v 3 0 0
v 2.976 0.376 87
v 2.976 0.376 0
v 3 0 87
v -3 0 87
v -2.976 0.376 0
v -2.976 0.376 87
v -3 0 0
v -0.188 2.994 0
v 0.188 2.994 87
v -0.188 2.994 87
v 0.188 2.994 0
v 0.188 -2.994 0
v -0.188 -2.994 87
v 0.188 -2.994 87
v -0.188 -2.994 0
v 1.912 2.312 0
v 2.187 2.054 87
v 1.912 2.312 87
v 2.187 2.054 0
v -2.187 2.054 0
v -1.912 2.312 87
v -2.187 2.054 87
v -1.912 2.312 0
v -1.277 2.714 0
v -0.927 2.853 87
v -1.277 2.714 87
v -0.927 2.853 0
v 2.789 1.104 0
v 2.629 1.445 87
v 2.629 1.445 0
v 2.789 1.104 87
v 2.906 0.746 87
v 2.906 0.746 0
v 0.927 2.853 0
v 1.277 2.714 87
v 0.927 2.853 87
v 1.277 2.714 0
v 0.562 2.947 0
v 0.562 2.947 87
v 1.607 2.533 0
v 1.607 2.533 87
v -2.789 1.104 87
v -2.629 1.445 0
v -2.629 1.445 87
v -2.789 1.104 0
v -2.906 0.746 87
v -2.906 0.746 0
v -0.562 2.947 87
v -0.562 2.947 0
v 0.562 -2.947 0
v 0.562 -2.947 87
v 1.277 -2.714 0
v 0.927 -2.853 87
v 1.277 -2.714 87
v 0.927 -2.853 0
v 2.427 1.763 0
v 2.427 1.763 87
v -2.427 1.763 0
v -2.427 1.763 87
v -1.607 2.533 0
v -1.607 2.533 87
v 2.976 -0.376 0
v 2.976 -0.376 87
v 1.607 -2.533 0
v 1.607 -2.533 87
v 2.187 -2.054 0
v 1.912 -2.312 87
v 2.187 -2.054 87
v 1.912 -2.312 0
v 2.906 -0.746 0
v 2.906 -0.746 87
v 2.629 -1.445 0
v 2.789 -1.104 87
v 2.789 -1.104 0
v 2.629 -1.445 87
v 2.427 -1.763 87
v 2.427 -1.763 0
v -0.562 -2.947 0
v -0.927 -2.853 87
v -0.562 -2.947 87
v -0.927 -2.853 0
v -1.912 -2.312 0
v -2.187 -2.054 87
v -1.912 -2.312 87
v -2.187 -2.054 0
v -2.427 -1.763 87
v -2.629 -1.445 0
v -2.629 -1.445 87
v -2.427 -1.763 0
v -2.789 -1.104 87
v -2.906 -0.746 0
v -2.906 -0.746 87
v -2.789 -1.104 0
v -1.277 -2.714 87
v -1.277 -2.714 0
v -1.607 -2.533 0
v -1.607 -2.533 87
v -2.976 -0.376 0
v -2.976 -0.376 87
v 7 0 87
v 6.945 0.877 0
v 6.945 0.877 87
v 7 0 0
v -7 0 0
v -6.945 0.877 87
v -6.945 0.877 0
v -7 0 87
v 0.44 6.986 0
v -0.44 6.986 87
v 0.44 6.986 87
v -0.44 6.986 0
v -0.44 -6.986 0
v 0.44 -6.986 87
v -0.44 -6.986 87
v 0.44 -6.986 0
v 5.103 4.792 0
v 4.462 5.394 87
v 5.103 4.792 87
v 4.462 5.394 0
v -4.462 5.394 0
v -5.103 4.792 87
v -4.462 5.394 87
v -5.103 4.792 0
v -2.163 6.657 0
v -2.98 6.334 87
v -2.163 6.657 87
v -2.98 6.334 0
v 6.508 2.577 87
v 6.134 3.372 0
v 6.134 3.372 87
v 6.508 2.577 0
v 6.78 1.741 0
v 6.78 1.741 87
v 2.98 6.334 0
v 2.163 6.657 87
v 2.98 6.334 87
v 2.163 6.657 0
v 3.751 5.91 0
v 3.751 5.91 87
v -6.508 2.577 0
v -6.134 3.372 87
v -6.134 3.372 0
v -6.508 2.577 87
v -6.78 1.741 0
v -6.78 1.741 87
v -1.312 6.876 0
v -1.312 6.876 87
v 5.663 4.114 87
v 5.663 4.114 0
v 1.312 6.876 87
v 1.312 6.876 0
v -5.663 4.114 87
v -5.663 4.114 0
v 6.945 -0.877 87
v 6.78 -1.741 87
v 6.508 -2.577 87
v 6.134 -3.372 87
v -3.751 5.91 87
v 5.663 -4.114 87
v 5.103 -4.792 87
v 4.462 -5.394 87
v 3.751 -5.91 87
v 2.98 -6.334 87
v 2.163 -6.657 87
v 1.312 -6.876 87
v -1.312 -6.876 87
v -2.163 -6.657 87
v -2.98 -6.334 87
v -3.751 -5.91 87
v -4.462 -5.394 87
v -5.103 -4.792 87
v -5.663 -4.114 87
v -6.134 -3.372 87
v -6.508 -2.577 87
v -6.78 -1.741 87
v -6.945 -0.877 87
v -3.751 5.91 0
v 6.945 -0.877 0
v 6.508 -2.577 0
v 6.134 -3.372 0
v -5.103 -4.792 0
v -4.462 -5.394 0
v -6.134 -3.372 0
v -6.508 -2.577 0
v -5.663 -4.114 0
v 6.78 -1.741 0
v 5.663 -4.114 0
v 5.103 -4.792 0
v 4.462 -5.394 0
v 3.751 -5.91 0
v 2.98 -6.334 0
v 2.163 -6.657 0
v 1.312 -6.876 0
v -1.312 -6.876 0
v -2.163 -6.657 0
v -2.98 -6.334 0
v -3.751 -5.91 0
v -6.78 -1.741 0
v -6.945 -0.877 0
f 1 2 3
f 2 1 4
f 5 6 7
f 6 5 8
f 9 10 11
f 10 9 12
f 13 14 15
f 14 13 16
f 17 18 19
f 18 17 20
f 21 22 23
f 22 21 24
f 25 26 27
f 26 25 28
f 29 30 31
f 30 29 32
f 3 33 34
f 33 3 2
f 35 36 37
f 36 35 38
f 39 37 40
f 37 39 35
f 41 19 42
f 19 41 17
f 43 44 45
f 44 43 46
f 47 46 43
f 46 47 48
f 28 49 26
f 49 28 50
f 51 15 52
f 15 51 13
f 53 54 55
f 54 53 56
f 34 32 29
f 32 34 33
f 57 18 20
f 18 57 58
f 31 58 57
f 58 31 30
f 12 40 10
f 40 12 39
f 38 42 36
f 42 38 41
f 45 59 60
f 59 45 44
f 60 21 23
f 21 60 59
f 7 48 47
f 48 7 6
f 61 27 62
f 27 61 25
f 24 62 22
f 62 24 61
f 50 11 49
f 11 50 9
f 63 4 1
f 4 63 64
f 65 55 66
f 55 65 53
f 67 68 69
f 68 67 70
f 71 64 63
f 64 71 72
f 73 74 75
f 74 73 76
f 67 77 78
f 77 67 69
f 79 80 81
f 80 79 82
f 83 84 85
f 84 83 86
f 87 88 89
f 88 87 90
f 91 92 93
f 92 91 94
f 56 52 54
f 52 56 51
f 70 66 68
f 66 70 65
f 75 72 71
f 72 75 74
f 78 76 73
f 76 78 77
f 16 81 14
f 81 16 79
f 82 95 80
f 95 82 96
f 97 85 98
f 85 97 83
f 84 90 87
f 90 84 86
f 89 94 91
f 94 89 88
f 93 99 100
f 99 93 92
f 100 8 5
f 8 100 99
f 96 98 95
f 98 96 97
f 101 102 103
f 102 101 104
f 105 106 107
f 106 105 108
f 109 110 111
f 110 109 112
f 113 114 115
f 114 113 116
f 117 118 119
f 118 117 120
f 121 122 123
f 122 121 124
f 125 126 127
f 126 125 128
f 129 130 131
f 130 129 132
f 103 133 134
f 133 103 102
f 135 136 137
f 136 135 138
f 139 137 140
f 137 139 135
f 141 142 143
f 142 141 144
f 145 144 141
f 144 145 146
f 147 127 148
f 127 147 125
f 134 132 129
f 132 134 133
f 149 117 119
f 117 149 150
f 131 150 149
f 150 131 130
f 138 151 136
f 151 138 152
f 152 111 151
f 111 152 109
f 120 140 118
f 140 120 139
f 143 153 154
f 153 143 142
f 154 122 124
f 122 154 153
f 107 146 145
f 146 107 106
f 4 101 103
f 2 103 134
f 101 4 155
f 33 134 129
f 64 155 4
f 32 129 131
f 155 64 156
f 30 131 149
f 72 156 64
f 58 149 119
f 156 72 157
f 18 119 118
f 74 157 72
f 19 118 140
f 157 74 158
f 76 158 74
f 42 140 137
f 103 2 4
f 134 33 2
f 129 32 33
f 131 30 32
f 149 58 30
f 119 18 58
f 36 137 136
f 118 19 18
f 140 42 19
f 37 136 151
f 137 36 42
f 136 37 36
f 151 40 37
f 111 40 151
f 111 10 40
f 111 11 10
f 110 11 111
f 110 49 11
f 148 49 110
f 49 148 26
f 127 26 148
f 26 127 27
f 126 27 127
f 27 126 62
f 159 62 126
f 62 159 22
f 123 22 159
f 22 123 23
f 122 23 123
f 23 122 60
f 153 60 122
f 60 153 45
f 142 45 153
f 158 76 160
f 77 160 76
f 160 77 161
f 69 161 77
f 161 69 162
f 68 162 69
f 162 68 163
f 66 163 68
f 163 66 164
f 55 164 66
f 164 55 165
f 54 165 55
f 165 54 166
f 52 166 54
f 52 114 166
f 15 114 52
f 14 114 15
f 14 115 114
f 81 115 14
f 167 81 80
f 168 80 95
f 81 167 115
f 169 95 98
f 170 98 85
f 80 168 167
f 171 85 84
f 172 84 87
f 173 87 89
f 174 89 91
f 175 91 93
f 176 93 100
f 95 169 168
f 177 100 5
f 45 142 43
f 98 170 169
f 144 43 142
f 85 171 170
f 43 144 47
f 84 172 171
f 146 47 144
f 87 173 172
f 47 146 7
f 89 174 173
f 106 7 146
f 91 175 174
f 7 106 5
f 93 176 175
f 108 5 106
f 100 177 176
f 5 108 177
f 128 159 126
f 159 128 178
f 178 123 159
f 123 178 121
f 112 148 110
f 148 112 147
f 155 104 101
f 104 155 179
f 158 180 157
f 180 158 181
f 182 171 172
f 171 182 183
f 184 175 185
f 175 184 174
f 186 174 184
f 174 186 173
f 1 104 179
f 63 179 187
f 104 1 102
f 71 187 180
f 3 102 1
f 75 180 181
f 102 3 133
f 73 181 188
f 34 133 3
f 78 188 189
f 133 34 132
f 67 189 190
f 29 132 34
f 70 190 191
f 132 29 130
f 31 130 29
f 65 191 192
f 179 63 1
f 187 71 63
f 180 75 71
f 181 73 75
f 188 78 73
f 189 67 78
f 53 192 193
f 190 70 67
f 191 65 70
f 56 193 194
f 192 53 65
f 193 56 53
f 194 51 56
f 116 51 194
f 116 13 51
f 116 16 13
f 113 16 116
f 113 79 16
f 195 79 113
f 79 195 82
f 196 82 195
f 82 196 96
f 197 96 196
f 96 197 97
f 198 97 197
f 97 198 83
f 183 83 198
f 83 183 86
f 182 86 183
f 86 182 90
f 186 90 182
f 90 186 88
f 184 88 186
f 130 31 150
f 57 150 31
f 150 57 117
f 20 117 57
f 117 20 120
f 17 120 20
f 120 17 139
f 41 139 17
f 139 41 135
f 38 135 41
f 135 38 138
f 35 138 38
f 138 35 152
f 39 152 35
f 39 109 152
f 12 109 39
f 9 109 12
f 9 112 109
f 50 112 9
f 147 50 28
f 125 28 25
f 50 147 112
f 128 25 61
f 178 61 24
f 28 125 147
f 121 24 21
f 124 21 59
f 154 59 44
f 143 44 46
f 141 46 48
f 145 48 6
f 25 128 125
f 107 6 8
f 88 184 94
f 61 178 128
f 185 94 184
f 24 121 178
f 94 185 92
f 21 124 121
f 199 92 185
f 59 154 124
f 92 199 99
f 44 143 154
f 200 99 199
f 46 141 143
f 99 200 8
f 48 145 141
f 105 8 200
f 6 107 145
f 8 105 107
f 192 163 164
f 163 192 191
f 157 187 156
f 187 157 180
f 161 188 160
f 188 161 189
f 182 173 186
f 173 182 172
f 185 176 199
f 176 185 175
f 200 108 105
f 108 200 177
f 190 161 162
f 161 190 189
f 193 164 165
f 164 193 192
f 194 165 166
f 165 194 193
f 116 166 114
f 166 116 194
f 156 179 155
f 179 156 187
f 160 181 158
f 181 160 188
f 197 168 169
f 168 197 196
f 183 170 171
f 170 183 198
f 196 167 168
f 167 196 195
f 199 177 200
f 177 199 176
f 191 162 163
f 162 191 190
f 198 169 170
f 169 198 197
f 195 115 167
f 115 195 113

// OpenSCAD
$fn = 50;


difference() {
	union() {
		cylinder(h = 87, r = 7.0000000000);
	}
	union() {
		translate(v = [0, 0, -100]) {
			cylinder(h = 200, r = 3.0000000000);
		}
		translate(v = [0, 0, -100]) {
			cylinder(h = 200, r = 1.5000000000);
		}
	}
}
